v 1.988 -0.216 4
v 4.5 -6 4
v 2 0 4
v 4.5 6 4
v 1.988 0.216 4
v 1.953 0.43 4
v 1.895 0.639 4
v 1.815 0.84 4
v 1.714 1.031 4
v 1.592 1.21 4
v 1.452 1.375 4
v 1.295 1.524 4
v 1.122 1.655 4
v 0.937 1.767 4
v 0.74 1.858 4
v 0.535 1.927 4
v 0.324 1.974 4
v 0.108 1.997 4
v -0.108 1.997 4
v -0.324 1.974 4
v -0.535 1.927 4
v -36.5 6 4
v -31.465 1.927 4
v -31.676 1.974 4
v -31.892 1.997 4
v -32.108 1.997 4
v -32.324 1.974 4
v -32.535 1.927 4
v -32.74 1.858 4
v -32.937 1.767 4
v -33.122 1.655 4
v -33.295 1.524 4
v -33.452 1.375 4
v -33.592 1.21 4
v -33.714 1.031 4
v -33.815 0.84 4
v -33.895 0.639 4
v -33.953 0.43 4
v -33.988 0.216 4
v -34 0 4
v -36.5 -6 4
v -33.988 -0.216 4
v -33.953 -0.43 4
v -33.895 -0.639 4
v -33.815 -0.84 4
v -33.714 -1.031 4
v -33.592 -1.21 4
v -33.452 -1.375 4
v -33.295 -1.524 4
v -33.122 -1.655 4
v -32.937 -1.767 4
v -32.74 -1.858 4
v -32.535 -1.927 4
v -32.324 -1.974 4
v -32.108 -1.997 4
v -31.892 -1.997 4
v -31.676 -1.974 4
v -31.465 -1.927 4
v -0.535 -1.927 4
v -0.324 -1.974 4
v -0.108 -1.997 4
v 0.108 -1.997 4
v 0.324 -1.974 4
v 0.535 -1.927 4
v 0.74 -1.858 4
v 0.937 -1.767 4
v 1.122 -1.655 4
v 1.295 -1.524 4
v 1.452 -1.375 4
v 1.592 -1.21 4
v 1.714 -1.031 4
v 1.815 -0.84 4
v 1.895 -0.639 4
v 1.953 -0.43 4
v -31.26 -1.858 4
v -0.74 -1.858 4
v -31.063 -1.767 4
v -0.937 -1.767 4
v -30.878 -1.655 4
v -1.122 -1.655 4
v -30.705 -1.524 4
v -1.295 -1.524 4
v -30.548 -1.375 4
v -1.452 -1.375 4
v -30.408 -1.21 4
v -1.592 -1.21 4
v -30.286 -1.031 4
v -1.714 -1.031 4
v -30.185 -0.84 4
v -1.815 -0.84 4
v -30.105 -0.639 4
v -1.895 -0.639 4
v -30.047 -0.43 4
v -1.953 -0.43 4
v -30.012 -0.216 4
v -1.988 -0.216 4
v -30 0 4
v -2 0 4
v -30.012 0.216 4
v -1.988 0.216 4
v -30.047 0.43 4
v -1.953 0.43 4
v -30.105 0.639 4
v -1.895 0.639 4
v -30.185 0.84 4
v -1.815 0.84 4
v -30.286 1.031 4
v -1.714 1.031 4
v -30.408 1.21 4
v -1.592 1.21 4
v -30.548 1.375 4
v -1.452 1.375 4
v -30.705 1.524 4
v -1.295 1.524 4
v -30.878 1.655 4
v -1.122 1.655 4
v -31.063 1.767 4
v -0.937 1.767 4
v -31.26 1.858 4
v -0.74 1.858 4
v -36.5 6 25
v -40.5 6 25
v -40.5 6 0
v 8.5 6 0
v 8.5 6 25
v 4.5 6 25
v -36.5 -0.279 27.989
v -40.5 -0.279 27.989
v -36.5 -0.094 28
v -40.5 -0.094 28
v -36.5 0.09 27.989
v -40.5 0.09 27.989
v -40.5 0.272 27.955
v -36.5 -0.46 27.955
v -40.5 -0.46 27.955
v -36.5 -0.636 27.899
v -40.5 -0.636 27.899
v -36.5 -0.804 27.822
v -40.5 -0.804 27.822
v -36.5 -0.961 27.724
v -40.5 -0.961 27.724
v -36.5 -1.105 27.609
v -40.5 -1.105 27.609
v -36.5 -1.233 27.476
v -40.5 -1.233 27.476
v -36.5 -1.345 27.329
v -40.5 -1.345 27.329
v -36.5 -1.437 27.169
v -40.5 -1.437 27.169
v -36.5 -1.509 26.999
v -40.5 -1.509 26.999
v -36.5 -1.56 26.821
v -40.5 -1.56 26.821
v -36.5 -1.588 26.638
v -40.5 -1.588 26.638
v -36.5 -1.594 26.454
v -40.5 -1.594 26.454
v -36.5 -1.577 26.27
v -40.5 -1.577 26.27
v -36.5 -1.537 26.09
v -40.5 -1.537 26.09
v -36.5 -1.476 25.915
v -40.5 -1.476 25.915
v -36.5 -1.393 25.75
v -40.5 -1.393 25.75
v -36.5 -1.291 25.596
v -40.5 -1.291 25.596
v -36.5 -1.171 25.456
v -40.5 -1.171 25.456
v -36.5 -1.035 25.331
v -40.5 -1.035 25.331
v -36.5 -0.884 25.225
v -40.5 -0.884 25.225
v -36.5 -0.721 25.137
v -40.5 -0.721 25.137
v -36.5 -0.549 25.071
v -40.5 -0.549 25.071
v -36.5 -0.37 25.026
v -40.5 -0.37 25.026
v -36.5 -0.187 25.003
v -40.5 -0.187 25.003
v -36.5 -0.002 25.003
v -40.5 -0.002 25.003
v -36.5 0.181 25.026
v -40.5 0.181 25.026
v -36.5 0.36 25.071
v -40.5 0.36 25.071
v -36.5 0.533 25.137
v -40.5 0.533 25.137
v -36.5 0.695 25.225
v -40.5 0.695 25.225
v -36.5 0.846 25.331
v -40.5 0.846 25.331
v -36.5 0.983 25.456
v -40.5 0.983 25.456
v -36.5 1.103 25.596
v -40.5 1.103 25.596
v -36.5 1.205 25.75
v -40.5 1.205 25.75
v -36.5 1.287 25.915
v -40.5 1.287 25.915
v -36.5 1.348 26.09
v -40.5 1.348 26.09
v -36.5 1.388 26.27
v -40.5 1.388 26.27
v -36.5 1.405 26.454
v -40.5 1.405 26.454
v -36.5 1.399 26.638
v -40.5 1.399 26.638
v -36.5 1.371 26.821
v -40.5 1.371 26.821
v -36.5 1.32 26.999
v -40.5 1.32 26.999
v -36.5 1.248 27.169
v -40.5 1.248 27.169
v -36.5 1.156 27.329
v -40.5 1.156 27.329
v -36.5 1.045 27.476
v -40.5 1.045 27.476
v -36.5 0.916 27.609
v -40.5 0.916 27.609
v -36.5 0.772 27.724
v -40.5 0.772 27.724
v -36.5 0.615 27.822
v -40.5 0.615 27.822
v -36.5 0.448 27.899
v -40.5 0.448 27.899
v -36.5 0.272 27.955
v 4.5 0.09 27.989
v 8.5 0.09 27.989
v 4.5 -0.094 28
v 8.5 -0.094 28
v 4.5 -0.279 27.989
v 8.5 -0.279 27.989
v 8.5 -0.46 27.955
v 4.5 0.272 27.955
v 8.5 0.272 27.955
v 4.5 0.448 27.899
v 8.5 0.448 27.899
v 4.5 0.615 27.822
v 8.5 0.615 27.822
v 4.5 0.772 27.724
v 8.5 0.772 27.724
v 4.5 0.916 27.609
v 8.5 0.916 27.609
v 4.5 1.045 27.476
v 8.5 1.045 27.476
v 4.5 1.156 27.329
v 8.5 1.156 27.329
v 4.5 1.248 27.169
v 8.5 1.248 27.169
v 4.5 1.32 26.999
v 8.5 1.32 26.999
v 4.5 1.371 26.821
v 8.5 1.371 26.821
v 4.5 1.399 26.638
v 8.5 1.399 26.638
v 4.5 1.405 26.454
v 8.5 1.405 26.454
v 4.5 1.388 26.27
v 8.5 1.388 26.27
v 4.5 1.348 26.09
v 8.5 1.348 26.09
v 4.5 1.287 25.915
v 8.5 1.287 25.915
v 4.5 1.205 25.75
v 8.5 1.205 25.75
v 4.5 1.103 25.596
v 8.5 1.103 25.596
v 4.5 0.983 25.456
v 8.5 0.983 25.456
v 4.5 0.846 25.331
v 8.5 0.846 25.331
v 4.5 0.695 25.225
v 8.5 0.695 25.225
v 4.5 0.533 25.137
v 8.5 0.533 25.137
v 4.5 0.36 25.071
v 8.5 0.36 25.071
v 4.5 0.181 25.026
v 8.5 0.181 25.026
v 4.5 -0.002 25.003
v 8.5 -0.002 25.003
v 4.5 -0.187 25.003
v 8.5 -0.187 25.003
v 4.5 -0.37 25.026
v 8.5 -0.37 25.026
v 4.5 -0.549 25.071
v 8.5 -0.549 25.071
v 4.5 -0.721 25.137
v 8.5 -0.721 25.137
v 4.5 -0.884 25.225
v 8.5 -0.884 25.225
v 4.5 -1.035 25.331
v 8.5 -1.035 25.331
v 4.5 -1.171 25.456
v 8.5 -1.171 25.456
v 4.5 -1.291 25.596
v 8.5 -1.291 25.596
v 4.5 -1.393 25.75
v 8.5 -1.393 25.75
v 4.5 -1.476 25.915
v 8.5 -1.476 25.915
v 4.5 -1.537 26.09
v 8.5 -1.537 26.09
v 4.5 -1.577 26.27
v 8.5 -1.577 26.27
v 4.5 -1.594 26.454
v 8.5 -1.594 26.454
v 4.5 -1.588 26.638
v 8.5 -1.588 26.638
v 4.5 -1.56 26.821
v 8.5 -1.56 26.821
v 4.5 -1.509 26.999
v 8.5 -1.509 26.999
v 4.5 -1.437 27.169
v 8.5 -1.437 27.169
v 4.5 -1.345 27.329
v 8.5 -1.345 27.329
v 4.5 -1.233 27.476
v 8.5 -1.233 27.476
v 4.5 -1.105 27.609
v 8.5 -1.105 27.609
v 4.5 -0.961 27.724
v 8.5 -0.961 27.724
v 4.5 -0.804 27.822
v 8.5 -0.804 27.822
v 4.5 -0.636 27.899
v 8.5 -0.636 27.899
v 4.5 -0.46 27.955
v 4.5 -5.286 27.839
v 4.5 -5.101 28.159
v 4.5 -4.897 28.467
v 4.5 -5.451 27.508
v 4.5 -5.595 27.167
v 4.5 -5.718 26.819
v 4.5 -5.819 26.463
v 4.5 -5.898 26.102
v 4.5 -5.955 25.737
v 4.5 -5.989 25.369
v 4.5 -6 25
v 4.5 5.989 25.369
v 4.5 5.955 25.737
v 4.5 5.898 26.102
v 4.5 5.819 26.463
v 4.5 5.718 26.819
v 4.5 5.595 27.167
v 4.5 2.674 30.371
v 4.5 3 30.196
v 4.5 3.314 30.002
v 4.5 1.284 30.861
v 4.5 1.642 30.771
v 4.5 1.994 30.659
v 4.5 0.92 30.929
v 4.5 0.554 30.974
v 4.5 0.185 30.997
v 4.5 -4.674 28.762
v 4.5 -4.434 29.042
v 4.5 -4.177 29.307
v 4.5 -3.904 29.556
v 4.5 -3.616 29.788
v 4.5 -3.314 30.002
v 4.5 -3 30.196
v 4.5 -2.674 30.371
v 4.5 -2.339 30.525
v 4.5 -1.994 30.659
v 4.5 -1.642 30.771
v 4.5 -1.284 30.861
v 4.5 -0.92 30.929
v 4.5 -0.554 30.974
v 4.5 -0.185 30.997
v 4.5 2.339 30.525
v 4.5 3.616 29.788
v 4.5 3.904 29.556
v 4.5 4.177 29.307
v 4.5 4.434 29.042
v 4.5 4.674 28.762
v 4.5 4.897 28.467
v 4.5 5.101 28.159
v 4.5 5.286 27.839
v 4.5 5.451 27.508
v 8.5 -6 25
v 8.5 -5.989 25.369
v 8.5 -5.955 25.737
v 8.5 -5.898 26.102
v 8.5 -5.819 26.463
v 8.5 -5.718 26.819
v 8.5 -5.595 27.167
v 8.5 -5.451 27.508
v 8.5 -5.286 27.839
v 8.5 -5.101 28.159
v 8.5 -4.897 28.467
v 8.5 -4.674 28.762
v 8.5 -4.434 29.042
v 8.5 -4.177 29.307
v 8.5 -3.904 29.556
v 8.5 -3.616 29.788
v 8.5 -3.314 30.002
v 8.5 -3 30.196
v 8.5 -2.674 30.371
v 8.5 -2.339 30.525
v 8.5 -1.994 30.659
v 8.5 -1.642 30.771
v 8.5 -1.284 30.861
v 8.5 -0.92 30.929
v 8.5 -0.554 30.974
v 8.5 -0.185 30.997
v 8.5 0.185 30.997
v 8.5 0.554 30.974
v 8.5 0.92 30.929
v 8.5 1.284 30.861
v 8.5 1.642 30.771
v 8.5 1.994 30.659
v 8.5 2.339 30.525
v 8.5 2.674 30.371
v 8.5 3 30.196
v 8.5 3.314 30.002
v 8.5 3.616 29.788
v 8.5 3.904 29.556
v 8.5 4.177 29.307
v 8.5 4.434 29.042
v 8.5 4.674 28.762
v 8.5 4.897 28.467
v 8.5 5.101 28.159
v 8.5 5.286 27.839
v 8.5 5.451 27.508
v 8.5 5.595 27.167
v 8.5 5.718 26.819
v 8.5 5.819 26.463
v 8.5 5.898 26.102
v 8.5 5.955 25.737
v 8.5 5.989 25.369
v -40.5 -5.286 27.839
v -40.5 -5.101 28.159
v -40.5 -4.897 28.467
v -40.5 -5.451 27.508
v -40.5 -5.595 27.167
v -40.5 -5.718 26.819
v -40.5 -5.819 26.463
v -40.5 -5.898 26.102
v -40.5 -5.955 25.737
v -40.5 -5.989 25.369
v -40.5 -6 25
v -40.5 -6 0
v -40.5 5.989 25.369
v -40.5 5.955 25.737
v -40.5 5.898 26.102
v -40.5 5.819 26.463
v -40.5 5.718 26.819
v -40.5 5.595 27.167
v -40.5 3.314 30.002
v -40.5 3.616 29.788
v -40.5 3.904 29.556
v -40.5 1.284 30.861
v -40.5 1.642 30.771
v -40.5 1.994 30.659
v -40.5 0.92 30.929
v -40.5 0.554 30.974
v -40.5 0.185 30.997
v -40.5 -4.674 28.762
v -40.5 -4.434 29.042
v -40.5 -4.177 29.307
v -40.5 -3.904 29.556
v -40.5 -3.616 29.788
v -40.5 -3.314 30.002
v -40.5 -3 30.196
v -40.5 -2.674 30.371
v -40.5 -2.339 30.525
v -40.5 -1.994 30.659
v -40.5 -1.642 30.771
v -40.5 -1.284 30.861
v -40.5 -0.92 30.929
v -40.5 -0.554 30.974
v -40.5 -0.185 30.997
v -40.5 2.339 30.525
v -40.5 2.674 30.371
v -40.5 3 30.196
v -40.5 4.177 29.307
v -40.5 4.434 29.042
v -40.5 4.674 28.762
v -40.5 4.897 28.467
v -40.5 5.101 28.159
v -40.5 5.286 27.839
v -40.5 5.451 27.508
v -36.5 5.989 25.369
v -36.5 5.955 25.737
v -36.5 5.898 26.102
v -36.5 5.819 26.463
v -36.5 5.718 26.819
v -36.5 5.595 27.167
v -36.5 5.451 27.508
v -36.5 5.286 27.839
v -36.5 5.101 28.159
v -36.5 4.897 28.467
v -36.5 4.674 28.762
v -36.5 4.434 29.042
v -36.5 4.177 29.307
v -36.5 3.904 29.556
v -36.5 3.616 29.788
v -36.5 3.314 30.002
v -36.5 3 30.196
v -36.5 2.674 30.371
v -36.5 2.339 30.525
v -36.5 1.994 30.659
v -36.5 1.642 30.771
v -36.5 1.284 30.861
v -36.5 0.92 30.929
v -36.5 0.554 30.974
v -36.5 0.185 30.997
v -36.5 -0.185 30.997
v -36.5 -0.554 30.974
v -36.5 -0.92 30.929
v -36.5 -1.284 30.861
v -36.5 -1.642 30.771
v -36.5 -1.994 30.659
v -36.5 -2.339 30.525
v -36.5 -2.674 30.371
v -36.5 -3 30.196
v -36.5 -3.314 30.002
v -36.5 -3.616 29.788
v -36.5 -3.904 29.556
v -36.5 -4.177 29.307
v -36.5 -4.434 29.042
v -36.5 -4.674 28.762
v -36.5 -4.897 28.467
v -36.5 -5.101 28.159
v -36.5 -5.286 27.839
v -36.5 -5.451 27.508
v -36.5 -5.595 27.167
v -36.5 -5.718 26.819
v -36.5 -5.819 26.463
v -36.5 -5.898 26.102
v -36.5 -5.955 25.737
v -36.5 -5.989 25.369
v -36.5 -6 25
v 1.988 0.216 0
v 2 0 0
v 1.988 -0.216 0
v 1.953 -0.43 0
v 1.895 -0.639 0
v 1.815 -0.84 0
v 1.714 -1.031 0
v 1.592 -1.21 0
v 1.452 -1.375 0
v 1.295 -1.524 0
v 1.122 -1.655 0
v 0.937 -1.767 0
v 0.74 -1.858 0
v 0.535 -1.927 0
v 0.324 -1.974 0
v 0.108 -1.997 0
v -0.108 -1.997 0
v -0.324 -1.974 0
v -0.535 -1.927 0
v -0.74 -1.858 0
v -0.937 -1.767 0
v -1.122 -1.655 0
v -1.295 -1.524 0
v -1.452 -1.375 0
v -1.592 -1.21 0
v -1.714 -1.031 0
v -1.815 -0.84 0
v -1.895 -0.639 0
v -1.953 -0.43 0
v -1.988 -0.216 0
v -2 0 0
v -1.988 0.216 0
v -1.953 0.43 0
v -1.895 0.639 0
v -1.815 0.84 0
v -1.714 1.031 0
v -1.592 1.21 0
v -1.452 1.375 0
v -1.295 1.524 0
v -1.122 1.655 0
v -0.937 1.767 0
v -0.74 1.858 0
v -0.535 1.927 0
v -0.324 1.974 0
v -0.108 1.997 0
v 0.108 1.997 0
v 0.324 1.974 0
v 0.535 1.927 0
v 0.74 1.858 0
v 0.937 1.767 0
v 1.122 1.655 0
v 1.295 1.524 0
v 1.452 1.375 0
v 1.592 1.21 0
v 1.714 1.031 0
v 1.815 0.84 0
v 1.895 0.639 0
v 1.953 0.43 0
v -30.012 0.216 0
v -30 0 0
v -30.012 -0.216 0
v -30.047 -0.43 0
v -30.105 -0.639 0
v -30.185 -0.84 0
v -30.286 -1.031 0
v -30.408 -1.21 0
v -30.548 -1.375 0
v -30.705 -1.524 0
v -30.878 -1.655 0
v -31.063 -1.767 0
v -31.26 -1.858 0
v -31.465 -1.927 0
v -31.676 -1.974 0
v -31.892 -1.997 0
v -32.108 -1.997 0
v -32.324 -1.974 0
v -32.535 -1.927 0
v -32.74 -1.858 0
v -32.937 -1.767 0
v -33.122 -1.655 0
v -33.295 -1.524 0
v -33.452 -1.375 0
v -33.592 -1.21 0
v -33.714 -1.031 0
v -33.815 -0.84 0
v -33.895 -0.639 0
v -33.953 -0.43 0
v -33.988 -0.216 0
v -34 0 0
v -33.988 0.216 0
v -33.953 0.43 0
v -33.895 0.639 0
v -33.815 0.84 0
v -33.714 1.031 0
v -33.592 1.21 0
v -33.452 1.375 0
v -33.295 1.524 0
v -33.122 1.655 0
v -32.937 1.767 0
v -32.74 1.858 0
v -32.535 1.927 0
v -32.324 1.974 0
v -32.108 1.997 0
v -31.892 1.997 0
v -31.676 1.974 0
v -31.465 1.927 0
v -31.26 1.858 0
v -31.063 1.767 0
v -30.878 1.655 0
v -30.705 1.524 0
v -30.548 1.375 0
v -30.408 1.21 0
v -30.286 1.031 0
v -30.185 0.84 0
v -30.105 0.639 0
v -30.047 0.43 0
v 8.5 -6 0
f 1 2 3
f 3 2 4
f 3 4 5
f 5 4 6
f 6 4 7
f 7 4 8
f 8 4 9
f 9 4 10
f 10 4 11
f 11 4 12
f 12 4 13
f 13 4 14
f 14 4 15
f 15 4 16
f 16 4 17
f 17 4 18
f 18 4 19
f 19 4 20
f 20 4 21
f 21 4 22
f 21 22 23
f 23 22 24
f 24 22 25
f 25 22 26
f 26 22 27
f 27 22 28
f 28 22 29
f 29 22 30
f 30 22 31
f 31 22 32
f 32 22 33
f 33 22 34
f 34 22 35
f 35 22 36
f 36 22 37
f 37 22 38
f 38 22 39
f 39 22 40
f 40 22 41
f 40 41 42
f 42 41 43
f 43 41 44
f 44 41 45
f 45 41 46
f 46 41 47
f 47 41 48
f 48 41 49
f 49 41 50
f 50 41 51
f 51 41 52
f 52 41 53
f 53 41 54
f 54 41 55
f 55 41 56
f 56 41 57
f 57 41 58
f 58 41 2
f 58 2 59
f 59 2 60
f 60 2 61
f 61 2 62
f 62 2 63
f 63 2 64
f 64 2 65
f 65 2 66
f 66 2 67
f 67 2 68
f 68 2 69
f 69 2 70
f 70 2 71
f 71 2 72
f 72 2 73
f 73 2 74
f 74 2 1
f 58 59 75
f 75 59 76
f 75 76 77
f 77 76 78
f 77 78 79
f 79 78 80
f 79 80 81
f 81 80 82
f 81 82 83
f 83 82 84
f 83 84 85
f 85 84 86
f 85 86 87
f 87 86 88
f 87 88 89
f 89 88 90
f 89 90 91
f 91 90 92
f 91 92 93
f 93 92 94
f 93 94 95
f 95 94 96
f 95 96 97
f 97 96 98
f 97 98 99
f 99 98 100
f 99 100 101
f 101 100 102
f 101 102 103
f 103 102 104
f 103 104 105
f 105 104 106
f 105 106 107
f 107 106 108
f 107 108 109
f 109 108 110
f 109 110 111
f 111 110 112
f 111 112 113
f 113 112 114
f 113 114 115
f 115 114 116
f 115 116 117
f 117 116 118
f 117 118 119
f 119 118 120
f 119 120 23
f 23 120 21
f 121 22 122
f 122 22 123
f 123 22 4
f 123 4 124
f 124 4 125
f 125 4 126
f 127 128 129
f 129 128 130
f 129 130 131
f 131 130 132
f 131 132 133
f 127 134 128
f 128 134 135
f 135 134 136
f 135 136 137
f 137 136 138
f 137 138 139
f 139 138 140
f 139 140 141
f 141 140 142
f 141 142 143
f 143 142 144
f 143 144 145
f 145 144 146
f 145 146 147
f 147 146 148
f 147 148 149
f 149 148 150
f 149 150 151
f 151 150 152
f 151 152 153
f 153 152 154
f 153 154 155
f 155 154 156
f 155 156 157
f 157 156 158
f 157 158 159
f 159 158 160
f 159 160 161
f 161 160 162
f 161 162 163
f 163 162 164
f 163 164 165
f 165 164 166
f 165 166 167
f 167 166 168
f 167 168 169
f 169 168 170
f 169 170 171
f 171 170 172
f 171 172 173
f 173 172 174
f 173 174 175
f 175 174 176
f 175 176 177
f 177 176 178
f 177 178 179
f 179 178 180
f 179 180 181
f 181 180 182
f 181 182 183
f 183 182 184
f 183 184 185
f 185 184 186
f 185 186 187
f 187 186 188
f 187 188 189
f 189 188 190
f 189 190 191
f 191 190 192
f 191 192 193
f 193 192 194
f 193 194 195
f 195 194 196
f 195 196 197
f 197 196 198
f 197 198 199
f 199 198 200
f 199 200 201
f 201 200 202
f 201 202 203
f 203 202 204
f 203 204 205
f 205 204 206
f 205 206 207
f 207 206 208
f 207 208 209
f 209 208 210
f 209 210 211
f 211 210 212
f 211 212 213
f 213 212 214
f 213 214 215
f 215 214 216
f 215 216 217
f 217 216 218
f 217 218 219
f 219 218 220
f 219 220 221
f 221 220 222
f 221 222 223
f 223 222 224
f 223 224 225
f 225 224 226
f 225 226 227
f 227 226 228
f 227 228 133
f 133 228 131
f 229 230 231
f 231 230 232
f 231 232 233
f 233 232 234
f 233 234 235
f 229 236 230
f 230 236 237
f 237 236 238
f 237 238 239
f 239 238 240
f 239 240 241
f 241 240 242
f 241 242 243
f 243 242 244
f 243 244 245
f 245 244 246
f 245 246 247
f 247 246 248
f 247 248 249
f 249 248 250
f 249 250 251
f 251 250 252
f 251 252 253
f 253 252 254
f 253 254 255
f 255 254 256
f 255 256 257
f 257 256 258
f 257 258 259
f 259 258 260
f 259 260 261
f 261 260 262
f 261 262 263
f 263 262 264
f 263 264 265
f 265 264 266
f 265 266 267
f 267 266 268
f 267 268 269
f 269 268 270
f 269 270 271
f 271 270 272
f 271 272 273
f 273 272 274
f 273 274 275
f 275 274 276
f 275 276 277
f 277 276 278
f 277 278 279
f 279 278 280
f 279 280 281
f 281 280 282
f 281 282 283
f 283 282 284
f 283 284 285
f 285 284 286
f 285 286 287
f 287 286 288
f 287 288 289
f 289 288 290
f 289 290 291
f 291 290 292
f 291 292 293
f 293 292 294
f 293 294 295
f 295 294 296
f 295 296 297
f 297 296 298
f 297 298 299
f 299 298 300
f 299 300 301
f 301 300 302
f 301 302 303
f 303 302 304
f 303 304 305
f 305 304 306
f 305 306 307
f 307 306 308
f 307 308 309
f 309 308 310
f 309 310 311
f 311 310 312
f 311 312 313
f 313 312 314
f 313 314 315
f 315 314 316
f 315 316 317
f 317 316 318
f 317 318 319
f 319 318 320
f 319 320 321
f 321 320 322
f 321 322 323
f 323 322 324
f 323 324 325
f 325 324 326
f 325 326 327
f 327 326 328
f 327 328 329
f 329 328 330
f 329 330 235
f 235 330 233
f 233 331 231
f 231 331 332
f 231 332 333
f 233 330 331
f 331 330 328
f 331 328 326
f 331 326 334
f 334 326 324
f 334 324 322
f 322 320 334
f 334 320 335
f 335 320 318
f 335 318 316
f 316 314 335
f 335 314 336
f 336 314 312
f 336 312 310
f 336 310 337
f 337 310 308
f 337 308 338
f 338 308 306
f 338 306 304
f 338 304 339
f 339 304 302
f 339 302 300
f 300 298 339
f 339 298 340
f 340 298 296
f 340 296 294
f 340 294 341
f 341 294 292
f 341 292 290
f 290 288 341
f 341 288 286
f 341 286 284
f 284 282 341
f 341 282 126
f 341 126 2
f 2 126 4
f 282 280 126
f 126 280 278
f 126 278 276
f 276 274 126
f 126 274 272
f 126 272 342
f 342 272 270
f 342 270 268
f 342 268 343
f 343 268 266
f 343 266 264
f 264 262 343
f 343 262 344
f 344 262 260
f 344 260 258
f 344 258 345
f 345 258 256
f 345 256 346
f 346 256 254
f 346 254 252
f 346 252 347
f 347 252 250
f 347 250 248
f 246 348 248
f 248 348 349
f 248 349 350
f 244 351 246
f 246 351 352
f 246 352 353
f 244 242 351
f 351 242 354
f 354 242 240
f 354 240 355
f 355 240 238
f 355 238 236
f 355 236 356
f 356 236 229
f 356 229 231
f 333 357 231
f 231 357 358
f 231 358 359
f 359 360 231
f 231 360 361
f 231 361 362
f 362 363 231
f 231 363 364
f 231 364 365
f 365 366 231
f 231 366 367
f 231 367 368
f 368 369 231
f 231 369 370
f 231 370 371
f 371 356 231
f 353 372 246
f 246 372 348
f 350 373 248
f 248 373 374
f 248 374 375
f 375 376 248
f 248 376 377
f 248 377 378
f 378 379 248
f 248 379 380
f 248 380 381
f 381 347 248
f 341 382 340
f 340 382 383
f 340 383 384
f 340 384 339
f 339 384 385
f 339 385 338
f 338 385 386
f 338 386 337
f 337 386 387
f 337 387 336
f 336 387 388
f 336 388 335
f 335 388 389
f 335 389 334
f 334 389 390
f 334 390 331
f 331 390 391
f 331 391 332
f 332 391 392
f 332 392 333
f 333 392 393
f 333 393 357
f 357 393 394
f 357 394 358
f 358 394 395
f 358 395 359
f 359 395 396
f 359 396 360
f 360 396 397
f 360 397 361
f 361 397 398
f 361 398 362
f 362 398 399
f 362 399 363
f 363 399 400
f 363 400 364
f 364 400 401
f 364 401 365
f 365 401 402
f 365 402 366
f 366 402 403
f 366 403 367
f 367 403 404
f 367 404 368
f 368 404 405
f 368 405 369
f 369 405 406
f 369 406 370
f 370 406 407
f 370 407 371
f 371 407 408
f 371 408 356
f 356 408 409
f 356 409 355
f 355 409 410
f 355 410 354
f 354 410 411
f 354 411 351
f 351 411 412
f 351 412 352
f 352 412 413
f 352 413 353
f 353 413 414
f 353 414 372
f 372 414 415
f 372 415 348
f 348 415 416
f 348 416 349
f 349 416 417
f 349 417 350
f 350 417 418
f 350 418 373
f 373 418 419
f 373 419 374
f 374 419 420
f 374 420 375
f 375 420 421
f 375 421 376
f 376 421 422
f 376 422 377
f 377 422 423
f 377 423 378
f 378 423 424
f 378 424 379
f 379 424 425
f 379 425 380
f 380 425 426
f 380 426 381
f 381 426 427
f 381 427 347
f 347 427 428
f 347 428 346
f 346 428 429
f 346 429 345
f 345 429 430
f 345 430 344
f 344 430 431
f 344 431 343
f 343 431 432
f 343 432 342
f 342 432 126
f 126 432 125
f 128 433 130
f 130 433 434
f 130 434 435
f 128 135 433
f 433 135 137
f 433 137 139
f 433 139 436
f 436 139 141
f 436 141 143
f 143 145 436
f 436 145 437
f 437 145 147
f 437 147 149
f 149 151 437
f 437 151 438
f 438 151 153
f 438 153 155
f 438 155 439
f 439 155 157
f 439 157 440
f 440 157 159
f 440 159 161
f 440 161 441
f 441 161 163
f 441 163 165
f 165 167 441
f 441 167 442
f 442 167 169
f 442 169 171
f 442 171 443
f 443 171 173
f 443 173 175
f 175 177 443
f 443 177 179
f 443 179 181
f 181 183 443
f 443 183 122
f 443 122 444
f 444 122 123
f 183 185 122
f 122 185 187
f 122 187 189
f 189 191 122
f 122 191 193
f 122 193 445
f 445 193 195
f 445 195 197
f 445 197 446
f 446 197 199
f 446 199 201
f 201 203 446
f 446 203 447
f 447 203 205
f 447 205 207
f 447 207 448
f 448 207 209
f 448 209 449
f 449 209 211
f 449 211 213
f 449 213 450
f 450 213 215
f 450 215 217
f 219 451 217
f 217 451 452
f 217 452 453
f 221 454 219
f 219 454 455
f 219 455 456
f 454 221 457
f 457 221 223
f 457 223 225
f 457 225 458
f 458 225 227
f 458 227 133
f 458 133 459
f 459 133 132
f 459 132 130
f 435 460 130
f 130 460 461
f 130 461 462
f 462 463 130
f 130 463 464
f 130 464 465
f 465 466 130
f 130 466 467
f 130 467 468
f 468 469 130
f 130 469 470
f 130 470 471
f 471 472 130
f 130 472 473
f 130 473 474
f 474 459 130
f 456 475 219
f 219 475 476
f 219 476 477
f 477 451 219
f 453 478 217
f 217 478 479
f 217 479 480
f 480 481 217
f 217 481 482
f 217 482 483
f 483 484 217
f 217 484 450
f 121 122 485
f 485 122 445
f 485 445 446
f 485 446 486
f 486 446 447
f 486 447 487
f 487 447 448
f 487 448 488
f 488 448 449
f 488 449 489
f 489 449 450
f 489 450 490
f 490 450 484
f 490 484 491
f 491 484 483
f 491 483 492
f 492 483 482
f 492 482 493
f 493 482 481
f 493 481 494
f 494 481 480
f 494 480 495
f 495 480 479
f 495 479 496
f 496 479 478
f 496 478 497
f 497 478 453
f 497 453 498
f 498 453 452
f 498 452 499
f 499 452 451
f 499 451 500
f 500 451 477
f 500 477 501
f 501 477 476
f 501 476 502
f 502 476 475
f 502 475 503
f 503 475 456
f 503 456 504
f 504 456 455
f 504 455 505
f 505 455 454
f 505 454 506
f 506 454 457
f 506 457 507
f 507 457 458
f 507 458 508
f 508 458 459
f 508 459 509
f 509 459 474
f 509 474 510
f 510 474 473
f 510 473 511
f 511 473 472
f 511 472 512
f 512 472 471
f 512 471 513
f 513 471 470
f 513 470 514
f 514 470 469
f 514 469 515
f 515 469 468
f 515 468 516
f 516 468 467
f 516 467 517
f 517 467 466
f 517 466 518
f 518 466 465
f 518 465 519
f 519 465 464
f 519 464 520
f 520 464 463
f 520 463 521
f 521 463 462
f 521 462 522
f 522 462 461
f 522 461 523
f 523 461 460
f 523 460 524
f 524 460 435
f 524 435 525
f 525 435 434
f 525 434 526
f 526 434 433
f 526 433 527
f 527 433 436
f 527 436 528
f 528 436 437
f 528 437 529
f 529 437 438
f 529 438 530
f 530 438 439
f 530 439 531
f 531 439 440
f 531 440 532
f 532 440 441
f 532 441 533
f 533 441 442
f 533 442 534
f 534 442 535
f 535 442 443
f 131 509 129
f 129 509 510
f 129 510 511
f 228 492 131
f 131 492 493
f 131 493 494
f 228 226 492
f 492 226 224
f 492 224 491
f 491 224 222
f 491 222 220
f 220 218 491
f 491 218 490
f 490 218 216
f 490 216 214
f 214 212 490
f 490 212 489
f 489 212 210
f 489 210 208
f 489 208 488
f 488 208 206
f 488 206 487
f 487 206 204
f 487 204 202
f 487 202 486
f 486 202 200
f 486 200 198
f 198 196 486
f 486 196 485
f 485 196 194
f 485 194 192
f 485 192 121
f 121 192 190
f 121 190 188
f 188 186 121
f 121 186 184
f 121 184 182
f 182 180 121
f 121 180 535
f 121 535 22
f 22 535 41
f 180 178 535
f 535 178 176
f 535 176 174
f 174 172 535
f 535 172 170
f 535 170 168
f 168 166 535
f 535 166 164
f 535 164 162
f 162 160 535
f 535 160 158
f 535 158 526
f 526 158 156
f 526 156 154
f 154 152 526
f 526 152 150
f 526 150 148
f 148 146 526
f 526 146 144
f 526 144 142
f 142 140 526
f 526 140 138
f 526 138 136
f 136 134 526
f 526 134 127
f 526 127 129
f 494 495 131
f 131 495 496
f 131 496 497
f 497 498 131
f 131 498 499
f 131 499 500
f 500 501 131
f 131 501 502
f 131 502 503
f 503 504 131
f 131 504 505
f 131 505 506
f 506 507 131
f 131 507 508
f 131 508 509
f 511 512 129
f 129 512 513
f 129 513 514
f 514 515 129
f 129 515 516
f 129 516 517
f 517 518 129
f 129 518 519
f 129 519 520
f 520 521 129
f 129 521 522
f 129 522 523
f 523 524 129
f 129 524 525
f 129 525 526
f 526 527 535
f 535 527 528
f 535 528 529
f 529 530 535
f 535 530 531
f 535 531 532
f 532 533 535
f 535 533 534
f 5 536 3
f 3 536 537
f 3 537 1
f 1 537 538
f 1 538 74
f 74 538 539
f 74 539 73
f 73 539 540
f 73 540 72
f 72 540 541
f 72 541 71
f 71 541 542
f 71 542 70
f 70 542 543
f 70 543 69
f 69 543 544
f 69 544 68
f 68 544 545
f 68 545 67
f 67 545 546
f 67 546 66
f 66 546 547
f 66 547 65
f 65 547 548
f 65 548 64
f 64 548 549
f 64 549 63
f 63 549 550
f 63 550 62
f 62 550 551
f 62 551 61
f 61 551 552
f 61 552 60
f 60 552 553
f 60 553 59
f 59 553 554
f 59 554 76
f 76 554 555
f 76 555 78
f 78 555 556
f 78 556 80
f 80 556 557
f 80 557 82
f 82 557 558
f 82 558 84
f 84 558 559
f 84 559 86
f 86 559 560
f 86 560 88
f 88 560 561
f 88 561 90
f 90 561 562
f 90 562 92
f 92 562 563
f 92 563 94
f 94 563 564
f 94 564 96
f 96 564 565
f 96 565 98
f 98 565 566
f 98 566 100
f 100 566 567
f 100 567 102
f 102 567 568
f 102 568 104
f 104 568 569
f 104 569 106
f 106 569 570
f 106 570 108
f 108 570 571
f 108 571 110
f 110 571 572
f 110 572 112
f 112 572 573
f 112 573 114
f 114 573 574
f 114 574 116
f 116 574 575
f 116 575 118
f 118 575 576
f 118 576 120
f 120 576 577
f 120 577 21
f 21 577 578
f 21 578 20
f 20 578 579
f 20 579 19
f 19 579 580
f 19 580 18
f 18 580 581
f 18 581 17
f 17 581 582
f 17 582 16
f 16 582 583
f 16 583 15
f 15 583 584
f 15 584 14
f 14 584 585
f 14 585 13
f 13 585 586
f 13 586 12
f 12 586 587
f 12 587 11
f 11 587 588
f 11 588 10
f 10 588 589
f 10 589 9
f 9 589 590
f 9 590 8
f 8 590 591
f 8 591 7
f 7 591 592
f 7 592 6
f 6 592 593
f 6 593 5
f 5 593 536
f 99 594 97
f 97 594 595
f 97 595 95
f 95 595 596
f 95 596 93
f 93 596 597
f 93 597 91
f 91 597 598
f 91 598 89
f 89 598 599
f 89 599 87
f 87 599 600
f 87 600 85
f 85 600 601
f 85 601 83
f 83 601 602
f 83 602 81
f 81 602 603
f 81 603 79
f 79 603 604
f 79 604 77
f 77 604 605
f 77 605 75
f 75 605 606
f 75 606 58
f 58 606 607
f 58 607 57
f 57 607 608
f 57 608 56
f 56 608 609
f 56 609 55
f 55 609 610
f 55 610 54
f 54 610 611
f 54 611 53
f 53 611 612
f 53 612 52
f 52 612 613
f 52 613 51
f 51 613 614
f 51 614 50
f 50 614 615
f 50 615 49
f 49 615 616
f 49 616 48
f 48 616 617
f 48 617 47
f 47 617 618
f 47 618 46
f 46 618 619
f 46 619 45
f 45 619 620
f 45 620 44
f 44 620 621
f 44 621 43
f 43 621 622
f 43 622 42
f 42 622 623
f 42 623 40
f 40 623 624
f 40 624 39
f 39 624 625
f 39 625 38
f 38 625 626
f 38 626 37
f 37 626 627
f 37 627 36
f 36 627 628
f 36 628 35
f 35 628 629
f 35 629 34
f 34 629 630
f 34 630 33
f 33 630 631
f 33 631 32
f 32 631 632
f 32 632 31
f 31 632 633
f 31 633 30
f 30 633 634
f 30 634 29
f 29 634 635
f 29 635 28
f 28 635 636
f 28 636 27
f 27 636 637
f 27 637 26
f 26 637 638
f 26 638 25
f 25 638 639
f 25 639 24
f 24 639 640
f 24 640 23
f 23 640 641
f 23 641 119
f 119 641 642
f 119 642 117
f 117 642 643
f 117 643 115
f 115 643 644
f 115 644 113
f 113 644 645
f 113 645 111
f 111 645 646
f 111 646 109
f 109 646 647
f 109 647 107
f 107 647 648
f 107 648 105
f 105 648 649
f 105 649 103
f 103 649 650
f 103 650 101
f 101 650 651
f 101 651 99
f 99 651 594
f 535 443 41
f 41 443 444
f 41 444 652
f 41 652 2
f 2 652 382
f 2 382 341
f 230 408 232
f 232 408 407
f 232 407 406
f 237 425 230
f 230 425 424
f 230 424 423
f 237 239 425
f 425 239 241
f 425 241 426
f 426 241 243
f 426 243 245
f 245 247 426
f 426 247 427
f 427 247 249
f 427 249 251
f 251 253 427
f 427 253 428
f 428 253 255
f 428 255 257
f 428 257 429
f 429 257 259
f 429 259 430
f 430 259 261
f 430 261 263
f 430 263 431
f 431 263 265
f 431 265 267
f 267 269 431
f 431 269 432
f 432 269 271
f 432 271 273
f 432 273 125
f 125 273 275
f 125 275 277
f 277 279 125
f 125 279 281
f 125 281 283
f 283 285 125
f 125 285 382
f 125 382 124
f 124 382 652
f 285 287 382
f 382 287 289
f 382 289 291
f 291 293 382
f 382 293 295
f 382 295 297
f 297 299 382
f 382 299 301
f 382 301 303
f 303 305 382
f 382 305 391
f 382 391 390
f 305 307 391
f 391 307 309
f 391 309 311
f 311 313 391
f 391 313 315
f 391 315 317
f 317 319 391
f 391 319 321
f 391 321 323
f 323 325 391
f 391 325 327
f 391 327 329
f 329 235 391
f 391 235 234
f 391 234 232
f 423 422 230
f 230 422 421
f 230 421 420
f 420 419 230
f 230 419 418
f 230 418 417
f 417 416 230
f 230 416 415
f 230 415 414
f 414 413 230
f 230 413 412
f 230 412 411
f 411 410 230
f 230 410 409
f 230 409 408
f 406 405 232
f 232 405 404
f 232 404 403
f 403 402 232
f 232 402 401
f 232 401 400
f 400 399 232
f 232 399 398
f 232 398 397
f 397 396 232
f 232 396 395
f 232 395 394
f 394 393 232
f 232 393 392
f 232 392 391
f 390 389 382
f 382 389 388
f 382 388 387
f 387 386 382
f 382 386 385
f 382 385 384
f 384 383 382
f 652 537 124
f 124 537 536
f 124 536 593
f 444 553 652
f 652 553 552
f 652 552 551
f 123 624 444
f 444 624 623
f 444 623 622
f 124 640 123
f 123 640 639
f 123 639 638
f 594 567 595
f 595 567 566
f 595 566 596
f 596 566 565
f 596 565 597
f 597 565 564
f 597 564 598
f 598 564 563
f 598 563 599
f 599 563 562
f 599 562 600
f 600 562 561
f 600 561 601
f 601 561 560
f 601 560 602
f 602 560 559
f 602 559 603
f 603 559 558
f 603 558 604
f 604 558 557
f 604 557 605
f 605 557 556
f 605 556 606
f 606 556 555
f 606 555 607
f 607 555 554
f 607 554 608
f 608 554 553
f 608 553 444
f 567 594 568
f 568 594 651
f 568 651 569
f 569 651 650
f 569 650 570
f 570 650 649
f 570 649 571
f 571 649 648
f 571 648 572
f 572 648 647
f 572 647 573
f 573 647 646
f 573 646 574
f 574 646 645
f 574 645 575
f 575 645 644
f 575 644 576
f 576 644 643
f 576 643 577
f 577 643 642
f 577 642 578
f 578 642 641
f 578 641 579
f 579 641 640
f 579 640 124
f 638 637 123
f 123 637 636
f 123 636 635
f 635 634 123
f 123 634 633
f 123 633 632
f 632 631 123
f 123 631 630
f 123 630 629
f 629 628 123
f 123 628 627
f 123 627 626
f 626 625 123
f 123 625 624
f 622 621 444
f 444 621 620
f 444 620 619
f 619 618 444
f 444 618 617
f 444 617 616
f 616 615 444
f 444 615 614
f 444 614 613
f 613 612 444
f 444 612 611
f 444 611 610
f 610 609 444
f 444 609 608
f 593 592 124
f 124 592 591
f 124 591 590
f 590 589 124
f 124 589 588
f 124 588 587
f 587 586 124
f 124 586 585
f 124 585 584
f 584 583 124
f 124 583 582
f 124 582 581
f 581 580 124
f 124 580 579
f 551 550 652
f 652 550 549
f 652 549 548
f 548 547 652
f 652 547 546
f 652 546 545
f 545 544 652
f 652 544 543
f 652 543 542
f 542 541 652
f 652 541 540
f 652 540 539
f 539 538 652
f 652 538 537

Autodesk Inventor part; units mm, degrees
ref_plane "YZ Plane" through (0, 0, 0) normal (1, 0, 0) x (0, 1, 0)
ref_plane "XZ Plane" through (0, 0, 0) normal (0, 1, 0) x (-1, 0, 0)
ref_plane "XY Plane" through (0, 0, 0) normal (0, 0, 1) x (1, 0, 0)
sketch "Szkic1" plane through (0, 0, 0) normal (0, 0, 1) x (1, 0, 0)
  line L0 (0, 0) -> (-32, 0)
  circle A0 centre (-32, 0) radius 2
  circle A1 centre (0, 0) radius 2
  line L1 (-40.5, -6) -> (8.5, -6)
  line L2 (8.5, -6) -> (8.5, 6)
  line L3 (8.5, 6) -> (-40.5, 6)
  line L4 (-40.5, 6) -> (-40.5, -6)
  line L5 (-40.5, -6) -> (8.5, 6) construction
  line L6 (8.5, -6) -> (-40.5, 6) construction
  point P0 (-16, 0)
  dimension "d2" = 32
  dimension "d3" = 4
  dimension "d4" = 4
  dimension "d5" = 49
  dimension "d6" = 12
extrude "Wyciągnięcie proste1" add sketch "Szkic1" along normal blind 5
sketch "Szkic2" plane through (0, 0, 5) normal (0, 0, 1) x (1, 0, 0)
  line L0 (8.5, -6) -> (8.5, 6) projected
  line L1 (-40.5, -6) -> (8.5, -6) projected
  line L2 (8.5, 6) -> (4.5, 6)
  line L3 (4.5, 6) -> (4.5, -6)
  line L4 (4.5, -6) -> (8.5, -6)
  line L5 (8.5, -6) -> (8.5, 6)
  line L6 (-40.5, 6) -> (-36.5, 6)
  line L7 (-36.5, 6) -> (-36.5, -6)
  line L8 (-36.5, -6) -> (-40.5, -6)
  line L9 (-40.5, -6) -> (-40.5, 6)
  dimension "d12" = 4
  dimension "d13" = 4
extrude "Wyciągnięcie proste2" add sketch "Szkic2" along normal blind 26
fillet "Zaokrąglenie1" radius 6 4 edges at (-38.5, 6, 31) (-38.5, -6, 31) (6.5, 6, 31) (6.5, -6, 31)
sketch "Szkic3" plane through (-36.5, -6, 5) normal (1, 0, 0) x (0, 0, -1)
  line L0 (0, 5.9057) -> (-21.5, 5.9057)
  circle A0 centre (-21.5, 5.9057) radius 1.5
  point P0 (5, 6)
  dimension "d15" = 21.5
  dimension "d16" = 3
extrude "Wyciągnięcie proste3" cut sketch "Szkic3" along normal mid plane 100
sketch "Szkic4" plane through (0, 0, 5) normal (0, 0, 1) x (1, 0, 0)
  circle A0 centre (0, 0) radius 2 projected
  circle A1 centre (-32, 0) radius 2 projected
  line L0 (4.5, -6) -> (4.5, 6) projected
  line L1 (4.5, 6) -> (-36.5, 6) projected
  line L2 (-36.5, 6) -> (-36.5, -6) projected
  line L3 (-36.5, -6) -> (4.5, -6) projected
extrude "Wyciągnięcie proste4" cut sketch "Szkic4" against normal blind 1 contours A0 | A1 | L3 L2 L1 L0
properties part number "Zebatka holder"
